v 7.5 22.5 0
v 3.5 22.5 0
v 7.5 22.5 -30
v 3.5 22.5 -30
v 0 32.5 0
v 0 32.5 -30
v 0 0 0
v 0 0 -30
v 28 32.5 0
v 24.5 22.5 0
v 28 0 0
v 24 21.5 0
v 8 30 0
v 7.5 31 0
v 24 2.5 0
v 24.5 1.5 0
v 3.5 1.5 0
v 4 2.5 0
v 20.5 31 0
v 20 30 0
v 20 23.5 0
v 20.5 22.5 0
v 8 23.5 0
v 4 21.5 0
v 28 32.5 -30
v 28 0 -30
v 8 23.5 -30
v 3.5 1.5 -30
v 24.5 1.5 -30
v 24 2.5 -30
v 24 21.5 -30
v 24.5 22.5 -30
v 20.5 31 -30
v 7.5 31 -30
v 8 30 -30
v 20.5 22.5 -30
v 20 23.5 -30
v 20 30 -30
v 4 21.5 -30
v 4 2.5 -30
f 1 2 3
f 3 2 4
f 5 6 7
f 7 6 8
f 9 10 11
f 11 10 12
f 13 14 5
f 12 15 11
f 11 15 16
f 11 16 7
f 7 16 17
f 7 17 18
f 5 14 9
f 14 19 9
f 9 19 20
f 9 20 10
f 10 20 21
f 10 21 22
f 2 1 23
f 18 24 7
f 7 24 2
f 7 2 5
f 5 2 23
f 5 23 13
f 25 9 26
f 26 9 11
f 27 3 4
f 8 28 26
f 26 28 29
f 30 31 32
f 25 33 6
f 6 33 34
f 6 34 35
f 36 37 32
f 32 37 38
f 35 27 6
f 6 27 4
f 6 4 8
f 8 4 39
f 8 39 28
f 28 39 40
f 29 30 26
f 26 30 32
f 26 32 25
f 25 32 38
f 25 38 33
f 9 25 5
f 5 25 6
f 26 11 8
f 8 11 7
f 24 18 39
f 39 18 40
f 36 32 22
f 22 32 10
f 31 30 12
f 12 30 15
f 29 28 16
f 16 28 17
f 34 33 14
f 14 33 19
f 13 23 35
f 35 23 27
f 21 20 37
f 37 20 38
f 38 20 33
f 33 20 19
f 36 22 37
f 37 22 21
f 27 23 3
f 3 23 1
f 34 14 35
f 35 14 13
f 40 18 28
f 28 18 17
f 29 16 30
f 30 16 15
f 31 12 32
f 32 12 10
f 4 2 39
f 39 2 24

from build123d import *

# Parameters (mm, degrees)
SKETCH1_W               = 28
SKETCH1_H               = 30
BOSS_EXTRUDE1_DEPTH     = 32.5
CUT_EXTRUDE1_DEPTH      = 53.347397261
CUT_EXTRUDE1_DEPTH_BACK = 53.347397261
SKETCH2_W               = 20
SKETCH2_H               = 21
CUT_EXTRUDE2_DEPTH      = 53.347397261
CUT_EXTRUDE2_DEPTH_BACK = 53.347397261
SKETCH3_W               = 12
SKETCH3_H               = 8.5
CUT_EXTRUDE3_DEPTH      = 53.347397261
CUT_EXTRUDE3_DEPTH_BACK = 53.347397261


with BuildPart() as part:
    # Sketch1 → Boss-Extrude1 (new body)
    with BuildSketch(Plane(origin=(0, 0, 0), x_dir=(1, 0, 0), z_dir=(0, 1, 0))):
        with Locations((14, 15)):
            Rectangle(SKETCH1_W, SKETCH1_H)
    extrude(amount=BOSS_EXTRUDE1_DEPTH)

    # Sketch2 → Cut-Extrude1 (cut, two sides: drawn at the far end of the back side and taken through both)
    with BuildSketch(Plane.XY.offset(-CUT_EXTRUDE1_DEPTH_BACK)):
        with Locations((14, 12)):
            Rectangle(SKETCH2_W, SKETCH2_H)
    extrude(amount=CUT_EXTRUDE1_DEPTH + CUT_EXTRUDE1_DEPTH_BACK, mode=Mode.SUBTRACT)

    # Sketch3 → Cut-Extrude2 (cut, two sides: drawn at the far end of the back side and taken through both)
    with BuildSketch(Plane.XY.offset(-CUT_EXTRUDE2_DEPTH_BACK)):
        with Locations((14, 26.75)):
            Rectangle(SKETCH3_W, SKETCH3_H)
    extrude(amount=CUT_EXTRUDE2_DEPTH + CUT_EXTRUDE2_DEPTH_BACK, mode=Mode.SUBTRACT)

    # Sketch4 → Cut-Extrude3 (cut, two sides: drawn at the far end of the back side and taken through both)
    with BuildSketch(Plane.XY.offset(-CUT_EXTRUDE3_DEPTH_BACK)):
        Polygon((8, 22.5), (8, 23.5), (7.5, 22.5), align=None)
        Polygon((4, 22.5), (3.5, 22.5), (4, 21.5), align=None)
        Polygon((20, 22.5), (20, 23.5), (20.5, 22.5), align=None)
        Polygon((8, 31), (7.5, 31), (8, 30), align=None)
        Polygon((20, 31), (20.5, 31), (20, 30), align=None)
        Polygon((24, 22.5), (24.5, 22.5), (24, 21.5), align=None)
        Polygon((24, 1.5), (24.5, 1.5), (24, 2.5), align=None)
        Polygon((4, 1.5), (3.5, 1.5), (4, 2.5), align=None)
    extrude(amount=CUT_EXTRUDE3_DEPTH + CUT_EXTRUDE3_DEPTH_BACK, mode=Mode.SUBTRACT)


solid = part.part
